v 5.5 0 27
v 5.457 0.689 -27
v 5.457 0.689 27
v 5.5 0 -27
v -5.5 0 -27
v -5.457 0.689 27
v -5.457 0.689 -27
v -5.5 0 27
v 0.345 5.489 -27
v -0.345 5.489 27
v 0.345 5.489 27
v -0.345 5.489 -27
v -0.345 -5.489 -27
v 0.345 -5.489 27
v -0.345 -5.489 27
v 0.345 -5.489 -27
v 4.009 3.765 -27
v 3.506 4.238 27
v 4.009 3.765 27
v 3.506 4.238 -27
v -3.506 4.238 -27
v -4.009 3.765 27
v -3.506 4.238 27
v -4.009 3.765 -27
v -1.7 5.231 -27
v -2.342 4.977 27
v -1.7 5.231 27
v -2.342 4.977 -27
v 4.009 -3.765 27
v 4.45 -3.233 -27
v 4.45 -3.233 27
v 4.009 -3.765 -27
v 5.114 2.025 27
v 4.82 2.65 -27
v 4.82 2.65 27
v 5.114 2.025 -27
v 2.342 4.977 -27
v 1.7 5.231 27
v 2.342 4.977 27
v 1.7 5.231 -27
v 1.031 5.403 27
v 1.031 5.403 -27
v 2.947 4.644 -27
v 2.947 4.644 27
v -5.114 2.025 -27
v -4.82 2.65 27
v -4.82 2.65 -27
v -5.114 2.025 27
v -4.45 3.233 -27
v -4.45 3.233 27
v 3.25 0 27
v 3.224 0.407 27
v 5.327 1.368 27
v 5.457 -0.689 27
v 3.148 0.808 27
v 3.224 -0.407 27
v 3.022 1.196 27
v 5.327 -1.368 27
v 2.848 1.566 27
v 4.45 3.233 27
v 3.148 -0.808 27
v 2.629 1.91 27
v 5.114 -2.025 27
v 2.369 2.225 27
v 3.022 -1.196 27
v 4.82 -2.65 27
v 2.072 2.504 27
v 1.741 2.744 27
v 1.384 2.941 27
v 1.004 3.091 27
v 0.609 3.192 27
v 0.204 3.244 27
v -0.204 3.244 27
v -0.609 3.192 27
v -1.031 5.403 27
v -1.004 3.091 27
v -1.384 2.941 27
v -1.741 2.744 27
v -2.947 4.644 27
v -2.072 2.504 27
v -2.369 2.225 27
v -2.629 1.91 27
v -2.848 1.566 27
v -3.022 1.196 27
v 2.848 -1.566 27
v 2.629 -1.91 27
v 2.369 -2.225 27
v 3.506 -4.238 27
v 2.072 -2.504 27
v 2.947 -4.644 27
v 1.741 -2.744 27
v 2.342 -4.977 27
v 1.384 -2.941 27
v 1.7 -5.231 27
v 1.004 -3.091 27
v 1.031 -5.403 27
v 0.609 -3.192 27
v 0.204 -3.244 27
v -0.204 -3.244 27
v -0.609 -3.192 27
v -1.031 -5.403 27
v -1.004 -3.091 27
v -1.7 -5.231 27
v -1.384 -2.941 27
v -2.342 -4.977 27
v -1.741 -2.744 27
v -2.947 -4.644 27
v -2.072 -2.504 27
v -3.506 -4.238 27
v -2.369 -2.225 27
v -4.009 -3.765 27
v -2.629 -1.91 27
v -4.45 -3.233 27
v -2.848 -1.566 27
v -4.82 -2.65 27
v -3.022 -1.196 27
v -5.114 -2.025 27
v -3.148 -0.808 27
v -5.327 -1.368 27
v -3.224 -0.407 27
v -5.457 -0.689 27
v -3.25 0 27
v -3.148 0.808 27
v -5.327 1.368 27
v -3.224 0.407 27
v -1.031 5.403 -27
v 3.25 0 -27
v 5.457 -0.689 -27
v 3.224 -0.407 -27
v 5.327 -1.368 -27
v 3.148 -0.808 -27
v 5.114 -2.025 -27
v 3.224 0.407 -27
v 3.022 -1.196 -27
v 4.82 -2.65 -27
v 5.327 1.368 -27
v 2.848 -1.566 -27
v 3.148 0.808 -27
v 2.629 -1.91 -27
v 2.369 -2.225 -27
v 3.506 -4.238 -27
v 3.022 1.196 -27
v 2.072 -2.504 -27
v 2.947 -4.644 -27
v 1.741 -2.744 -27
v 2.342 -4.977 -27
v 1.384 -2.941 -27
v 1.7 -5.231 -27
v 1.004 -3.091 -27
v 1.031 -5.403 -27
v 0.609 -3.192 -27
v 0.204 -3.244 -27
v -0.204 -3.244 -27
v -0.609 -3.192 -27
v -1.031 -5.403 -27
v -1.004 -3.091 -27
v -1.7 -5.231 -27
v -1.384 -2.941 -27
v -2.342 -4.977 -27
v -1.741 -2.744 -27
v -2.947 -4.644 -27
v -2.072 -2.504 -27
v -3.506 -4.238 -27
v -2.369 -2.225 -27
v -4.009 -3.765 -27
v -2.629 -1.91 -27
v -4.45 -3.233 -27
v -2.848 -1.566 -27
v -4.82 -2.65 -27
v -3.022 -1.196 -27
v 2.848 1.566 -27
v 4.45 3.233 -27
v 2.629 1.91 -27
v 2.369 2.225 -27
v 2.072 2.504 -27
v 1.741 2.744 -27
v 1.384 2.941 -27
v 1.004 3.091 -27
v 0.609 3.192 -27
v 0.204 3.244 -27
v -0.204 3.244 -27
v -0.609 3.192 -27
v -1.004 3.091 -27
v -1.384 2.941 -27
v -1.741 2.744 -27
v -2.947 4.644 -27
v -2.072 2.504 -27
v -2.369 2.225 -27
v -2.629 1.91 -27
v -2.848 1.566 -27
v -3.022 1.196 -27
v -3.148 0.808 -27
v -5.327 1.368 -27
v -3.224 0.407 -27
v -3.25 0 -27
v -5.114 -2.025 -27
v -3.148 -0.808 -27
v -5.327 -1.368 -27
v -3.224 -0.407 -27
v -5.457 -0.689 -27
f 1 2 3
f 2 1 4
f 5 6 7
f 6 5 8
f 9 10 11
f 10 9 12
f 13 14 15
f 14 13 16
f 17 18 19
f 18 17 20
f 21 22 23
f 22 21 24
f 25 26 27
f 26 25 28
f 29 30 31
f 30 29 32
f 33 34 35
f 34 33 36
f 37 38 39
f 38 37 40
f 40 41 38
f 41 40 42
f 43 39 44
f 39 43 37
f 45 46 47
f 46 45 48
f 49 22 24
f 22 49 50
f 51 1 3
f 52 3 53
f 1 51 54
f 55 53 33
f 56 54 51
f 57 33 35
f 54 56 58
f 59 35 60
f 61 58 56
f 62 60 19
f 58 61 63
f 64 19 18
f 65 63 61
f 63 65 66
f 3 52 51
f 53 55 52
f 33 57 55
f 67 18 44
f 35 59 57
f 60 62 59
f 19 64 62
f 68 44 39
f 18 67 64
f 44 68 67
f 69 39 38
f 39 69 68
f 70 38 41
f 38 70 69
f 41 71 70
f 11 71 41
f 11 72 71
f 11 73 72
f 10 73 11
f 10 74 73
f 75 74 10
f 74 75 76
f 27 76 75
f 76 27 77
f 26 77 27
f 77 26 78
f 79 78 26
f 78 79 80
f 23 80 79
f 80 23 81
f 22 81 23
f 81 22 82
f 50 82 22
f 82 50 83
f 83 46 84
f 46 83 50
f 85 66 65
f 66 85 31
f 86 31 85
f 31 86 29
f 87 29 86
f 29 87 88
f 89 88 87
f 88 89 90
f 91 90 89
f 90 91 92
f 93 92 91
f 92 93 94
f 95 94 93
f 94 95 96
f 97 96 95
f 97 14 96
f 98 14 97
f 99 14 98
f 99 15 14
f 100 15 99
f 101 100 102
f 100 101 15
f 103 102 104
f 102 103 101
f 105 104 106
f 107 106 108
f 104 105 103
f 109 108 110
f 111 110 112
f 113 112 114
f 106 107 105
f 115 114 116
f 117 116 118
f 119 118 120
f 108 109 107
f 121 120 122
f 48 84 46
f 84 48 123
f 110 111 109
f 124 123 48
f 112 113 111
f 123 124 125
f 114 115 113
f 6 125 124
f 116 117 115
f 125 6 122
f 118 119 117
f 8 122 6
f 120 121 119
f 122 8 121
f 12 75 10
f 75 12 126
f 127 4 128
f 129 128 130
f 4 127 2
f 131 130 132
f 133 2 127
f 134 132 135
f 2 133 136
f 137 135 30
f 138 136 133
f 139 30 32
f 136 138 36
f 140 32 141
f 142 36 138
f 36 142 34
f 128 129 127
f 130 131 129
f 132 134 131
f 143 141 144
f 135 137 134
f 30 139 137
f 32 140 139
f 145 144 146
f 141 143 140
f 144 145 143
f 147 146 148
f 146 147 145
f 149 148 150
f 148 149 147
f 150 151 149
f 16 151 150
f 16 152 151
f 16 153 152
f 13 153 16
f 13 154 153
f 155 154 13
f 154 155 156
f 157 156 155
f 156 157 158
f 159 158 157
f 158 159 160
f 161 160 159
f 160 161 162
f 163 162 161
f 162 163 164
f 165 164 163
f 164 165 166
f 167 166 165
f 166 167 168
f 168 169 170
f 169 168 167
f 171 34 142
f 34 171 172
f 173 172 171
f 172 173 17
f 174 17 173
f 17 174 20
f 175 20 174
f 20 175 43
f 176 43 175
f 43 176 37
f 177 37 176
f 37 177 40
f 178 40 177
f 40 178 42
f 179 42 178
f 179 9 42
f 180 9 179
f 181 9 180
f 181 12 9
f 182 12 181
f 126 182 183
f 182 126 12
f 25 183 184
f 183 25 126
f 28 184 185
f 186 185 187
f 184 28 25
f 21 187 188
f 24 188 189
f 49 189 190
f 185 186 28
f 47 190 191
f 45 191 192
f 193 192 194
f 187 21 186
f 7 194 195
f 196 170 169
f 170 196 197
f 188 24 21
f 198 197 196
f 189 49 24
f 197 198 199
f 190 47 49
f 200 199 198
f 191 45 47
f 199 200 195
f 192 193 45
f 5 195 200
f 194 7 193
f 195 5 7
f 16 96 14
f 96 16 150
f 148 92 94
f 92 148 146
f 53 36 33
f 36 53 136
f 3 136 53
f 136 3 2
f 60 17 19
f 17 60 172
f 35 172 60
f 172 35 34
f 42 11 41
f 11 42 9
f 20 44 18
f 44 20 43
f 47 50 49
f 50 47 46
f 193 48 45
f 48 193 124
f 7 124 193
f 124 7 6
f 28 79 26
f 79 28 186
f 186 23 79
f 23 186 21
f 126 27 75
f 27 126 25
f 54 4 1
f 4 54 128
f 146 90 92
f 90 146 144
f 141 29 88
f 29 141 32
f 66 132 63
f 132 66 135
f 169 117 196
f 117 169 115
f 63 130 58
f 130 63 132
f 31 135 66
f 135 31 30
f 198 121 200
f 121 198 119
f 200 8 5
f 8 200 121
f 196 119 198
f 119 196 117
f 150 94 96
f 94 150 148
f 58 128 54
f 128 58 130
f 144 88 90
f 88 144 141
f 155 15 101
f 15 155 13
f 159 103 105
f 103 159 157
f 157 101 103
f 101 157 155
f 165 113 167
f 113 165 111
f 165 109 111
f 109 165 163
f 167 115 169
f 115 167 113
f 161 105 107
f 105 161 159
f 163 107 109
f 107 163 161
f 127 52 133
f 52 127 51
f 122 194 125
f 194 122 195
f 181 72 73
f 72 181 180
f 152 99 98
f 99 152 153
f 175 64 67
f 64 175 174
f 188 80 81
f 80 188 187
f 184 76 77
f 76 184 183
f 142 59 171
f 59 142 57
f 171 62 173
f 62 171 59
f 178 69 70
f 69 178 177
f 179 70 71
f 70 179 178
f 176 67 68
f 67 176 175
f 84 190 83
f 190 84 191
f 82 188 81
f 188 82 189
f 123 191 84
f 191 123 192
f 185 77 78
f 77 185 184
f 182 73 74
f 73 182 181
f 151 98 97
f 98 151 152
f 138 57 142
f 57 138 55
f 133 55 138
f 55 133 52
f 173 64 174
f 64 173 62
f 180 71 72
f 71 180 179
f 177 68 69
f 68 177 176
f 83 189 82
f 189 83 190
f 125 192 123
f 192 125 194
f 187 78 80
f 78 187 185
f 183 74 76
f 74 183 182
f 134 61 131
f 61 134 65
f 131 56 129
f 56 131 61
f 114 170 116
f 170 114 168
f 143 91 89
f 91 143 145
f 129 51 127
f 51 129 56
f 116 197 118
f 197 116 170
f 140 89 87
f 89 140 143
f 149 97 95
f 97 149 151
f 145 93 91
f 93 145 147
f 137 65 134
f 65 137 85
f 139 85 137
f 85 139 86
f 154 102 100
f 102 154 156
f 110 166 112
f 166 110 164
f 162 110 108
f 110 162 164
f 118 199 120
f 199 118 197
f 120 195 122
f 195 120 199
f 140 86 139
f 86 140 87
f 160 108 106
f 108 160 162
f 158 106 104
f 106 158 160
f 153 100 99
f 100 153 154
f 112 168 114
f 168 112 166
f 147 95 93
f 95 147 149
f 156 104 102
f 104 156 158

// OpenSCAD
$fn = 50;


difference() {
	union() {
		translate(v = [0, 0, -27.0000000000]) {
			cylinder(h = 54, r = 5.5000000000);
		}
	}
	union() {
		translate(v = [0, 0, -100.0000000000]) {
			cylinder(h = 200, r = 3.2500000000);
		}
	}
}
